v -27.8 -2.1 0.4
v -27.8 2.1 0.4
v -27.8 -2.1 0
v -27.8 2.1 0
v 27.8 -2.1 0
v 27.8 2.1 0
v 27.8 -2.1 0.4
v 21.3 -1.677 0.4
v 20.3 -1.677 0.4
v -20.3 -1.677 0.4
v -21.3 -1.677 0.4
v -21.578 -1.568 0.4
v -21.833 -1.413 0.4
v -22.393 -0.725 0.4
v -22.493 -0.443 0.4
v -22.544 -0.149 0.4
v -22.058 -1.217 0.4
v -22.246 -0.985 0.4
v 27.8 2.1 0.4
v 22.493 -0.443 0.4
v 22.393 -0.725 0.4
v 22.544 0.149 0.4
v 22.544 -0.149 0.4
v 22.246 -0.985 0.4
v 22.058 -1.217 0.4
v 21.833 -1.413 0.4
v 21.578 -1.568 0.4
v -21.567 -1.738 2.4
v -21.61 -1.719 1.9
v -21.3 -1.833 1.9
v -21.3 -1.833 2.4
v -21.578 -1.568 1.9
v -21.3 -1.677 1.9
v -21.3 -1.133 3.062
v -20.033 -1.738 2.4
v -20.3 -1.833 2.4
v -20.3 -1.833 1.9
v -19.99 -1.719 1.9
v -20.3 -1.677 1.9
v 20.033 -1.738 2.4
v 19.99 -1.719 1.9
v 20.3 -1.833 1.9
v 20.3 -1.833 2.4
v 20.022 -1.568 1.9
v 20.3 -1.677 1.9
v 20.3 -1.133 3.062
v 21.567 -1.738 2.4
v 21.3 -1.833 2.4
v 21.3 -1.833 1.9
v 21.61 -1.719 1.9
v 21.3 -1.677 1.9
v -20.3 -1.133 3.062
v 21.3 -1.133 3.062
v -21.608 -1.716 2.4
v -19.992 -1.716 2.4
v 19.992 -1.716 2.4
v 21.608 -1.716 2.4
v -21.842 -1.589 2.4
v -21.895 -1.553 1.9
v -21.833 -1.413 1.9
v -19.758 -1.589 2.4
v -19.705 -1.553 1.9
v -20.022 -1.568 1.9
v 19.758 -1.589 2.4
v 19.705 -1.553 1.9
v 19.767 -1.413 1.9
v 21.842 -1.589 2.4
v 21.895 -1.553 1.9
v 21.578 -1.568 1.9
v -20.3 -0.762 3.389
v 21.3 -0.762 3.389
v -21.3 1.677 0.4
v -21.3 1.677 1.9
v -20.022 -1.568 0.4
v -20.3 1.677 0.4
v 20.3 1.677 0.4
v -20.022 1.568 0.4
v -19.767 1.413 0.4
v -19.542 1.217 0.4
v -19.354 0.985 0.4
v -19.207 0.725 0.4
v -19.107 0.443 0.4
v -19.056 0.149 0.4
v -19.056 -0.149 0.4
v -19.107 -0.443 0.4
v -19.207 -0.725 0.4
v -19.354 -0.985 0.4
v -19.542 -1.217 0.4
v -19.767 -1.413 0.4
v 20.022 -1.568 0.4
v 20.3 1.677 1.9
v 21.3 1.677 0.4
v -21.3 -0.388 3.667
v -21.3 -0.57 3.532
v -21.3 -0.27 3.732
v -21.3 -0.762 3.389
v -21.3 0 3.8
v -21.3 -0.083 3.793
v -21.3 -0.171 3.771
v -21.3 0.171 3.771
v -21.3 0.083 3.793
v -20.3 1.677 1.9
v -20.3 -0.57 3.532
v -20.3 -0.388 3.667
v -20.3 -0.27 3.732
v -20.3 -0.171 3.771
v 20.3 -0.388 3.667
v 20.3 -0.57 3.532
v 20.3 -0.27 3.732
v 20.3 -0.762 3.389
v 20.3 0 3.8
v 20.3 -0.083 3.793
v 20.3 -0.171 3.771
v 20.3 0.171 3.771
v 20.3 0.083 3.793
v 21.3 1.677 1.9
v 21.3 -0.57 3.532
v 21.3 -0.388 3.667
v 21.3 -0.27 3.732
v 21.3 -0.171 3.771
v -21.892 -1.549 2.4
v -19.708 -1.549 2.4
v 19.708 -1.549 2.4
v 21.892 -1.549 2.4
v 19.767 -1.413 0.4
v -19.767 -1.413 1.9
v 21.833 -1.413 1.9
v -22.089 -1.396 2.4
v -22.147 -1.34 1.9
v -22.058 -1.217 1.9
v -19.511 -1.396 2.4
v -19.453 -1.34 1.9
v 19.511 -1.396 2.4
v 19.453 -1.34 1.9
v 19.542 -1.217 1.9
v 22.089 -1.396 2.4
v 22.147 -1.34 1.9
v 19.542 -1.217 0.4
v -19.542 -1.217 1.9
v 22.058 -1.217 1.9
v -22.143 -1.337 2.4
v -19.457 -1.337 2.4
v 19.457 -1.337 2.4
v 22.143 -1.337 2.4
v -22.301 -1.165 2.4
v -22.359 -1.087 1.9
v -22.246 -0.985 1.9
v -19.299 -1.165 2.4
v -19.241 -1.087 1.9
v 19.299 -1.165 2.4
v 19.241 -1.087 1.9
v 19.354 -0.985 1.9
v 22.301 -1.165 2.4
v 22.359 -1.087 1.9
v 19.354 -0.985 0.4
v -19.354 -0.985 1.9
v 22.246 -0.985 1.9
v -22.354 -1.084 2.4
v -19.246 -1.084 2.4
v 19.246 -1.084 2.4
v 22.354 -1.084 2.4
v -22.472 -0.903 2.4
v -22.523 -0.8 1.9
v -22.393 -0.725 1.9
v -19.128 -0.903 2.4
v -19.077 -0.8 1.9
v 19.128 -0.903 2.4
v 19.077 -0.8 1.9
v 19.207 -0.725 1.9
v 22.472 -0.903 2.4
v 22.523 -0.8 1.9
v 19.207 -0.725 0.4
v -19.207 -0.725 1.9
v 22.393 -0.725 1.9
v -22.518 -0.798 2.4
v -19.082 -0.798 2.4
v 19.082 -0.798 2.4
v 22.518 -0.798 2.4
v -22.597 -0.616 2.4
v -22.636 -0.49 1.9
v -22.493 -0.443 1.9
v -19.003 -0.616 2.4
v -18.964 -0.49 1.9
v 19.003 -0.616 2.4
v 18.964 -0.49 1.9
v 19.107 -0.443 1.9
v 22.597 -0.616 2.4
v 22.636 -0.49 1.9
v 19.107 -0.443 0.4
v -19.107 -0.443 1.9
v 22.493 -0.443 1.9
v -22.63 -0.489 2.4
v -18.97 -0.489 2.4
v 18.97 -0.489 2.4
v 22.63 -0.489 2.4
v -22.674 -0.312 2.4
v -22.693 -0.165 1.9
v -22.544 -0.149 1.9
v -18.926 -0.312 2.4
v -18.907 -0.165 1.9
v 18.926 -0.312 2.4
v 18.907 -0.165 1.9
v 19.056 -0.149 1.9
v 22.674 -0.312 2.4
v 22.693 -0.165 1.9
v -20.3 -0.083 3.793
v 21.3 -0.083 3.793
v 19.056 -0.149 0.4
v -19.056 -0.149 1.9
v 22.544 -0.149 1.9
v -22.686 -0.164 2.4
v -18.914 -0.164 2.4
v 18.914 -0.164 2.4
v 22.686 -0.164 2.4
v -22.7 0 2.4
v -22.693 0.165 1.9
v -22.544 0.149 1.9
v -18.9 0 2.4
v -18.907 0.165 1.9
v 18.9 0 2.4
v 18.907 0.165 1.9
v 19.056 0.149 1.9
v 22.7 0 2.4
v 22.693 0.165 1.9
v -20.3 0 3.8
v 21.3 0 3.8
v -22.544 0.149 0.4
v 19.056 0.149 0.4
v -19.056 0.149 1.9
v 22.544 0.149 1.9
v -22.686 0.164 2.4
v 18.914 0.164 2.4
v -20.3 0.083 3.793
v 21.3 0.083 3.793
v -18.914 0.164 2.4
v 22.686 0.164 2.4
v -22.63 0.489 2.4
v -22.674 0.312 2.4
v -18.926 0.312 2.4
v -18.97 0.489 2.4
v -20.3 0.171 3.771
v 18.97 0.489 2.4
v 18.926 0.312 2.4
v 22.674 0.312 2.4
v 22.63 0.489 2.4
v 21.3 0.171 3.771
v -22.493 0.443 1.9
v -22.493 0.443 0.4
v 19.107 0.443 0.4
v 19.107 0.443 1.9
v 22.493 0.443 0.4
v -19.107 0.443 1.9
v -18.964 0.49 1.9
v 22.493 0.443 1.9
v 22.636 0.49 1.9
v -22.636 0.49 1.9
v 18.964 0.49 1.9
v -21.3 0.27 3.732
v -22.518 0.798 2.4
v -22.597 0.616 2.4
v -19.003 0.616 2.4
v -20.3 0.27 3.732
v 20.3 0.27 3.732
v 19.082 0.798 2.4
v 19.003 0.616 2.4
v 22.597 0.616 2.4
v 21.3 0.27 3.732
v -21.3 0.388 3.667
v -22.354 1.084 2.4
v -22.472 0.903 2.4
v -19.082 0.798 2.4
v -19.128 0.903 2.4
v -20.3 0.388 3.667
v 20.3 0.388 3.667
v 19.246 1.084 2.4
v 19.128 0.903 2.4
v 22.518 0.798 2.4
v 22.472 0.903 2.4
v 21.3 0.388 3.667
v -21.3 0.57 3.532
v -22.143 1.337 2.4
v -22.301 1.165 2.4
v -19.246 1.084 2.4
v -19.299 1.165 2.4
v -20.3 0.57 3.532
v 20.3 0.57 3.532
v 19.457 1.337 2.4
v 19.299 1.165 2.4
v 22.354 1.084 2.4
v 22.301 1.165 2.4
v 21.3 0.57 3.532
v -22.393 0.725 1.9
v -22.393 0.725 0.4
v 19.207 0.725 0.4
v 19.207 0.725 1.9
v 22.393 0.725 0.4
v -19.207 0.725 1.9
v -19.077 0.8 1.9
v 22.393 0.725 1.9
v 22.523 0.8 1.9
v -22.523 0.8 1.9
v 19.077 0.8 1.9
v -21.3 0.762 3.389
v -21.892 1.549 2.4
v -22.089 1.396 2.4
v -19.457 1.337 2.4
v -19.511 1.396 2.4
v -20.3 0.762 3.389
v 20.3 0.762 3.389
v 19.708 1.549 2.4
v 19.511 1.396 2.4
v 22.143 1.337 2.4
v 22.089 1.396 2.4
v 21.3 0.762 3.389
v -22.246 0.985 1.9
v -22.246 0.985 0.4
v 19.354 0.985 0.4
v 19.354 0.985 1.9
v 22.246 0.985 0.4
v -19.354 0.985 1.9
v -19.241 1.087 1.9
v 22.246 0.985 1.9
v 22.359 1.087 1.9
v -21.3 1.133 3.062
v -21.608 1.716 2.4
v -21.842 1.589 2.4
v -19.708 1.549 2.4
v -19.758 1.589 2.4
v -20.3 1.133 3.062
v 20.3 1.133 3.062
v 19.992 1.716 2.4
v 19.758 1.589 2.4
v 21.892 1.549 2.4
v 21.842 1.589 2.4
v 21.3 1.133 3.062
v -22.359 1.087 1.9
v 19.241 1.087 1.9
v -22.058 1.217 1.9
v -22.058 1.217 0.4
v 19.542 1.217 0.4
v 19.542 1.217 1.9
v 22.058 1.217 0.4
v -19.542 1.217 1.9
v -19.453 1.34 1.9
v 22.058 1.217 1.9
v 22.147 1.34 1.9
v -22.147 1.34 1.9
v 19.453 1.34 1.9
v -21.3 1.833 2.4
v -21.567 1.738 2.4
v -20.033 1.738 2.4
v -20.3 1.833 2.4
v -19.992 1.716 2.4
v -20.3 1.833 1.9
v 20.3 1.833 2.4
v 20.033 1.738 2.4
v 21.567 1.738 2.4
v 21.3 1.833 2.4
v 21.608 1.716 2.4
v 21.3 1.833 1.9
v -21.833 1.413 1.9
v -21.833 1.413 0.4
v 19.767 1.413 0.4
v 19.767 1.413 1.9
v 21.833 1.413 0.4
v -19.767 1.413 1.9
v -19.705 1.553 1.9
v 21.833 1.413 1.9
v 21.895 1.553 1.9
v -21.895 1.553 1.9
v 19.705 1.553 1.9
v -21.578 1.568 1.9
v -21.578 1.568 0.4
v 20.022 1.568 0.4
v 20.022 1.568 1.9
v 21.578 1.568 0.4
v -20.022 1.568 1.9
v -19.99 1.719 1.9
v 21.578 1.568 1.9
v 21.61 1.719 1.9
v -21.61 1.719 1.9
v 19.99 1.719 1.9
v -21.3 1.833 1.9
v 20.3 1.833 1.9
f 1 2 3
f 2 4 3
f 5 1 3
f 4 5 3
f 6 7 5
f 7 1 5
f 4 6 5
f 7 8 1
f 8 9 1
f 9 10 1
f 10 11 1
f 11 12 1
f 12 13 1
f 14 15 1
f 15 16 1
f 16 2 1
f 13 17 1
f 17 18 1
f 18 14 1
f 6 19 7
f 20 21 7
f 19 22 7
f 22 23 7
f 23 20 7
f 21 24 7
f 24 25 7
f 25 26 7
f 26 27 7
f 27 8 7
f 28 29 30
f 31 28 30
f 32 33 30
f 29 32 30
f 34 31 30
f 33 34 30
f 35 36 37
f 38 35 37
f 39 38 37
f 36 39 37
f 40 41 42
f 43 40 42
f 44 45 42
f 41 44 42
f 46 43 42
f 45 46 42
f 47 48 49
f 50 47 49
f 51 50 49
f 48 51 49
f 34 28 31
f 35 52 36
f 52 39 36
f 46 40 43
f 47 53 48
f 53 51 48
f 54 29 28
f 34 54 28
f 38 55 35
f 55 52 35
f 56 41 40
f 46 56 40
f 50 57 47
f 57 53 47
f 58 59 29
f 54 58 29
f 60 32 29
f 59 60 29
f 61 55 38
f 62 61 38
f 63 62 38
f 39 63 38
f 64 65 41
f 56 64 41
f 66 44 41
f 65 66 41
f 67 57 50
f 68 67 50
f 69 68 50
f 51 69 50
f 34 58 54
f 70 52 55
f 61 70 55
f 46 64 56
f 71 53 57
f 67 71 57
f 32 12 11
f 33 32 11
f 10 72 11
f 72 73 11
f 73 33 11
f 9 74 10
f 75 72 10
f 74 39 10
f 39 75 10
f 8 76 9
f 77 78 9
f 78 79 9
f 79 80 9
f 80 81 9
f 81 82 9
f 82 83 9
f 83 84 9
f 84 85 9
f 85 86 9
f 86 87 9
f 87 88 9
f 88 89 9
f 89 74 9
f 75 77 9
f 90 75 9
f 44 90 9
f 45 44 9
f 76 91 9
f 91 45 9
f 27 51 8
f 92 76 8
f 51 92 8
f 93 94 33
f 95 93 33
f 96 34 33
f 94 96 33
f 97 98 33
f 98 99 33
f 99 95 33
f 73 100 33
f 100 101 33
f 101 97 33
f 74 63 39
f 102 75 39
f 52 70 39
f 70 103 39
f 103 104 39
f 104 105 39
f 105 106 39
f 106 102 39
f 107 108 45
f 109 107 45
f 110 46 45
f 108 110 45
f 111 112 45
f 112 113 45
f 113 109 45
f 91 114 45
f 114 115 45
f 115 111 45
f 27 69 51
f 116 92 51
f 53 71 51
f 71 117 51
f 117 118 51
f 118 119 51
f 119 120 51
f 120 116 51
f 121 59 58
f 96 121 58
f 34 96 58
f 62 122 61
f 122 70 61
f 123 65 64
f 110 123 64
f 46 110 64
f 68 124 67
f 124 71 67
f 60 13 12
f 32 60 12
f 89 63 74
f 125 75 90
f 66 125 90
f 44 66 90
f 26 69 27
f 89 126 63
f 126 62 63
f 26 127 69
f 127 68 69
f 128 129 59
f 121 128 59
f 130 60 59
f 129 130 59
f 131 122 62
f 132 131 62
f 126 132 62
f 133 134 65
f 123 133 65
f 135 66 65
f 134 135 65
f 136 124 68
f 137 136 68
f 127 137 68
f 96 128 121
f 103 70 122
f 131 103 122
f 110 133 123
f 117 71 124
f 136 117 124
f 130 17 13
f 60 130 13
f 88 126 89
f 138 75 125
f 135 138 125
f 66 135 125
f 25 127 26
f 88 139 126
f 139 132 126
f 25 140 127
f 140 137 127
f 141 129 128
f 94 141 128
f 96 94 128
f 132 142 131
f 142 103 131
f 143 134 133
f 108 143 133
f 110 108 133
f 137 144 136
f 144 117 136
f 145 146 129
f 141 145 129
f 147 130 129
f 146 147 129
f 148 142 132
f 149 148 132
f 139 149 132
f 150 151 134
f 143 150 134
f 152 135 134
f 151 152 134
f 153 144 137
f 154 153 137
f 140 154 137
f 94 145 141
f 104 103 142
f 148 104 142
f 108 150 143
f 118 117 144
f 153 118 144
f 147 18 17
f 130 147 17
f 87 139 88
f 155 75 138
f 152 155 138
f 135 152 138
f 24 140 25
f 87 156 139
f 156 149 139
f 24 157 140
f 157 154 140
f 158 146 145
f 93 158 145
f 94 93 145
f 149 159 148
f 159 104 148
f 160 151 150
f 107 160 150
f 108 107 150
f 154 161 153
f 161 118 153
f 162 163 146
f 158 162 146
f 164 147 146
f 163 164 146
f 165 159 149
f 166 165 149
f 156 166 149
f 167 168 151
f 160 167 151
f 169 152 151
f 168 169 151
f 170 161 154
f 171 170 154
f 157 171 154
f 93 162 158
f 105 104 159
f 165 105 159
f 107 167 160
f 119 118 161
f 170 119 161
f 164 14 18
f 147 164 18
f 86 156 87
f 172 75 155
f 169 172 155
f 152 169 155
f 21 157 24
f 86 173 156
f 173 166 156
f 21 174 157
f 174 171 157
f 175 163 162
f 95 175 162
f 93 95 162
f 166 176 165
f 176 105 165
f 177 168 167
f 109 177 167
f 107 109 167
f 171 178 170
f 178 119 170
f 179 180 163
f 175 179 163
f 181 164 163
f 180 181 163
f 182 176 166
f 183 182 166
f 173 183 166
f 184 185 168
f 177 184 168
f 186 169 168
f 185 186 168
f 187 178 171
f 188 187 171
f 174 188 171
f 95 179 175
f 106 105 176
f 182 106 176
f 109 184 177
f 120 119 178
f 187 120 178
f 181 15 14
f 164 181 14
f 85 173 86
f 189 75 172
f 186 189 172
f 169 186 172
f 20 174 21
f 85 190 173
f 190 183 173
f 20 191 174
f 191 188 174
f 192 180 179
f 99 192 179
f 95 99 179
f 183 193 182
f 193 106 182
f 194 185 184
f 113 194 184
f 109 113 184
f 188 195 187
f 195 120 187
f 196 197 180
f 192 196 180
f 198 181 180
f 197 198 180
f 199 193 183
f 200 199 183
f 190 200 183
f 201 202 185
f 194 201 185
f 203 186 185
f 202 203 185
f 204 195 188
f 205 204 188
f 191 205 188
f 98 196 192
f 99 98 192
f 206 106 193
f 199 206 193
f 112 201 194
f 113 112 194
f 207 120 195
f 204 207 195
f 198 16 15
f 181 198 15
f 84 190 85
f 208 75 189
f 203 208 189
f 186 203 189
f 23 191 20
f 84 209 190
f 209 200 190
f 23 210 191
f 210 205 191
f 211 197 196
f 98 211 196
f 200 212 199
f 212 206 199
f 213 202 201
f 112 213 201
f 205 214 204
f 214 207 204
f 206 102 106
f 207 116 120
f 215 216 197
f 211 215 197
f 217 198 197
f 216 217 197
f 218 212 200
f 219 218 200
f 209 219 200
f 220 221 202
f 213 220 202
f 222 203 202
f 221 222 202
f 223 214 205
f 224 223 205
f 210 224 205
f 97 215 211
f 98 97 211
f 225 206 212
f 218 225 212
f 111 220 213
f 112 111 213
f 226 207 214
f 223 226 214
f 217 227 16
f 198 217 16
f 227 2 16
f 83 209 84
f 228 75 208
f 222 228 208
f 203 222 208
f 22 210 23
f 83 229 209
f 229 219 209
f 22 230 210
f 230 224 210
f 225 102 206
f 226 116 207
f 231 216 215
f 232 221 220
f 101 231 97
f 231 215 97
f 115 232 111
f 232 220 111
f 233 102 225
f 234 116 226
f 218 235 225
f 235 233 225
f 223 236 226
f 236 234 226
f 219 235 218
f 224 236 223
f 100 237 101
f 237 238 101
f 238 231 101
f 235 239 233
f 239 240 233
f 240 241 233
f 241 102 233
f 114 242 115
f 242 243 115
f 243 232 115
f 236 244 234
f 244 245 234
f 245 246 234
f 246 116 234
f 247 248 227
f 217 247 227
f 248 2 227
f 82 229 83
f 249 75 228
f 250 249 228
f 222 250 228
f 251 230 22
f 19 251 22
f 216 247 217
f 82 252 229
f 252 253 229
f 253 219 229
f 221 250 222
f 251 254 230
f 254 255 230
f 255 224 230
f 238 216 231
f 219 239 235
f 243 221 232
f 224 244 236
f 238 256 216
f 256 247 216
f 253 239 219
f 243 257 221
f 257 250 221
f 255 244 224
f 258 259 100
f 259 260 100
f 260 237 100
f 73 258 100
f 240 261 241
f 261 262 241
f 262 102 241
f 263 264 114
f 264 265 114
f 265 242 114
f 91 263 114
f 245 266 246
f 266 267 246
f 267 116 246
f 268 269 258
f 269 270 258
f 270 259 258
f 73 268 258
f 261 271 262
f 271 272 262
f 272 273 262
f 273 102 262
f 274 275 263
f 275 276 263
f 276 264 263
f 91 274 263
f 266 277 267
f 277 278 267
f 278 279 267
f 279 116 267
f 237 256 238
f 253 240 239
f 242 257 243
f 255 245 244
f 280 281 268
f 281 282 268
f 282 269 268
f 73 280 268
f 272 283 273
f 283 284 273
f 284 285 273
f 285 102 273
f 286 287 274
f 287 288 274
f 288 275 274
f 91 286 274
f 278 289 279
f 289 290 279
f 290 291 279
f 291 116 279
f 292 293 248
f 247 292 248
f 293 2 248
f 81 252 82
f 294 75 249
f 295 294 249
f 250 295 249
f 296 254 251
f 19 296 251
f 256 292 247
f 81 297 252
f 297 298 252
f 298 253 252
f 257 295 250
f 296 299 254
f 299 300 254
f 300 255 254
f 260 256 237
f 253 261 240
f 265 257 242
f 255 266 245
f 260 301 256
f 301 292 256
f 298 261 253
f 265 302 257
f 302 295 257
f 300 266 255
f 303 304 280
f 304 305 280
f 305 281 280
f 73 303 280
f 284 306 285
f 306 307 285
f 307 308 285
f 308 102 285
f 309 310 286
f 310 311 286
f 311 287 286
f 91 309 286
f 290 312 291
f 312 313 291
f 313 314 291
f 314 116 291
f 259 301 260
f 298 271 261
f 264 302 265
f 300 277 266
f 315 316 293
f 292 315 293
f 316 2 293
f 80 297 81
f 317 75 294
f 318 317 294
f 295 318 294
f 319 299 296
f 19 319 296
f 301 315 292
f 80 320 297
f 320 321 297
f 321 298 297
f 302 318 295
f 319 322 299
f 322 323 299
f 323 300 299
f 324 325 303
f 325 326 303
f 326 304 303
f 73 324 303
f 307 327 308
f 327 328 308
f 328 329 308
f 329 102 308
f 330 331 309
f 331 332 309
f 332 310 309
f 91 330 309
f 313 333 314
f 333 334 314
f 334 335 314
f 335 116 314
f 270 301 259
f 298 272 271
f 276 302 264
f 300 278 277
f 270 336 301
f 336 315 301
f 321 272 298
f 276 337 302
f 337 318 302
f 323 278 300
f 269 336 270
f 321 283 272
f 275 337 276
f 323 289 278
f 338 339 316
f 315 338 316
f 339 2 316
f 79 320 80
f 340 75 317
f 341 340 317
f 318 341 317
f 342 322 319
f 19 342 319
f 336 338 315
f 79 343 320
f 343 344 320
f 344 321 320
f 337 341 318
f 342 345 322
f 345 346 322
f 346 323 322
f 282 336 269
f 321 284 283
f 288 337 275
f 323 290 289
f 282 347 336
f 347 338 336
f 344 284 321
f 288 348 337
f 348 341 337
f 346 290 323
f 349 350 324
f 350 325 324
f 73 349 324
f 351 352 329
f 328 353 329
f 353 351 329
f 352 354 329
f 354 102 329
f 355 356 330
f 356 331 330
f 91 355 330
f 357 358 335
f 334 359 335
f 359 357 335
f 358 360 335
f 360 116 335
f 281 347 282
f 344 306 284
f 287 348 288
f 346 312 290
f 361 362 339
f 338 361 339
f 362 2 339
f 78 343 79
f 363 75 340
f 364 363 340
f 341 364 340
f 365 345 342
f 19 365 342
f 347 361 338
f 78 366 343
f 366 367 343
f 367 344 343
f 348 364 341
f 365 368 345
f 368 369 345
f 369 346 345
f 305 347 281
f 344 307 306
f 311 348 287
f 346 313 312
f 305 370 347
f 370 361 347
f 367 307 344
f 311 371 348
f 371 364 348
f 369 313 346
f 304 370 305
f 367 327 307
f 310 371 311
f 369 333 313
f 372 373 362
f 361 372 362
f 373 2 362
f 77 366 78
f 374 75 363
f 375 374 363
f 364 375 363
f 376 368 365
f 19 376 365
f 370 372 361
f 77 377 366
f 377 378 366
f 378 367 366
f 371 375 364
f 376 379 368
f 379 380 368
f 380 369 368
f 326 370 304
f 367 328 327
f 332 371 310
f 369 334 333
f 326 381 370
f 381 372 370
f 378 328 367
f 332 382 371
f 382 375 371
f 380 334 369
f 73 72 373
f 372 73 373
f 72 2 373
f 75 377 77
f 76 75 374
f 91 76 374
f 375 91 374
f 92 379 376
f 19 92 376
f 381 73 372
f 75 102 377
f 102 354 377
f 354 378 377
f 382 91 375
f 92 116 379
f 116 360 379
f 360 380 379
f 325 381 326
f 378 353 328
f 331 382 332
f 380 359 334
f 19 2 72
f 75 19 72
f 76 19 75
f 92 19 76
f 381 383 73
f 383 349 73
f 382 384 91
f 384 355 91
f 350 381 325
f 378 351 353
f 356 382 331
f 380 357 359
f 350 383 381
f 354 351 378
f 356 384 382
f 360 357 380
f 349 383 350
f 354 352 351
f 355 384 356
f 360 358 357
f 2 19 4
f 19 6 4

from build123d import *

# Parameters (mm, degrees)
SKICA2_W                 = 55.6
SKICA2_H                 = 4.2
P_IDAT_VYSUNUT_M2_DEPTH  = 0.4
SKICA3_R                 = 1.75
P_IDAT_VYSUNUT_M3_DEPTH  = 1.5
SKICA5_R                 = 1.9
P_IDAT_VYSUNUT_M5_DEPTH  = 2
ZKOSEN_2_SIZE            = 1.5
SKICA7_W                 = 1
SKICA7_H                 = 5
ODEBRAT_VYSUNUT_M1_DEPTH = 3.5


with BuildPart() as part:
    # Skica2 → Přidat vysunutím2 (new body)
    with BuildSketch(Plane.XY):
        Rectangle(SKICA2_W, SKICA2_H)
    extrude(amount=P_IDAT_VYSUNUT_M2_DEPTH)

    # Skica3 → Přidat vysunutím3 (add)
    with BuildSketch(Plane.XY.offset(0.4)):
        with Locations((-20.8, 0)):
            Circle(SKICA3_R)
        with Locations((20.8, 0)):
            Circle(SKICA3_R)
    extrude(amount=P_IDAT_VYSUNUT_M3_DEPTH)

    # Skica5 → Přidat vysunutím5 (add)
    with BuildSketch(Plane.XY.offset(1.9)):
        with Locations((-20.8, 0)):
            Circle(SKICA5_R)
        with Locations((20.8, 0)):
            Circle(SKICA5_R)
    extrude(amount=P_IDAT_VYSUNUT_M5_DEPTH)

    # Zkosení2
    zkosen_2_edges = [part.edges().sort_by_distance(p)[0] for p in [
        (-22.7, 0, 3.9),
        (18.9, 0, 3.9),
    ]]
    chamfer(zkosen_2_edges, length=ZKOSEN_2_SIZE)

    # Skica7 → Odebrat vysunutím1 (cut)
    with BuildSketch(Plane.XY.offset(3.9)):
        with Locations((-20.8, 0)):
            Rectangle(SKICA7_W, SKICA7_H)
        with Locations((20.8, 0)):
            Rectangle(SKICA7_W, SKICA7_H)
    extrude(amount=-ODEBRAT_VYSUNUT_M1_DEPTH, mode=Mode.SUBTRACT)


solid = part.part
